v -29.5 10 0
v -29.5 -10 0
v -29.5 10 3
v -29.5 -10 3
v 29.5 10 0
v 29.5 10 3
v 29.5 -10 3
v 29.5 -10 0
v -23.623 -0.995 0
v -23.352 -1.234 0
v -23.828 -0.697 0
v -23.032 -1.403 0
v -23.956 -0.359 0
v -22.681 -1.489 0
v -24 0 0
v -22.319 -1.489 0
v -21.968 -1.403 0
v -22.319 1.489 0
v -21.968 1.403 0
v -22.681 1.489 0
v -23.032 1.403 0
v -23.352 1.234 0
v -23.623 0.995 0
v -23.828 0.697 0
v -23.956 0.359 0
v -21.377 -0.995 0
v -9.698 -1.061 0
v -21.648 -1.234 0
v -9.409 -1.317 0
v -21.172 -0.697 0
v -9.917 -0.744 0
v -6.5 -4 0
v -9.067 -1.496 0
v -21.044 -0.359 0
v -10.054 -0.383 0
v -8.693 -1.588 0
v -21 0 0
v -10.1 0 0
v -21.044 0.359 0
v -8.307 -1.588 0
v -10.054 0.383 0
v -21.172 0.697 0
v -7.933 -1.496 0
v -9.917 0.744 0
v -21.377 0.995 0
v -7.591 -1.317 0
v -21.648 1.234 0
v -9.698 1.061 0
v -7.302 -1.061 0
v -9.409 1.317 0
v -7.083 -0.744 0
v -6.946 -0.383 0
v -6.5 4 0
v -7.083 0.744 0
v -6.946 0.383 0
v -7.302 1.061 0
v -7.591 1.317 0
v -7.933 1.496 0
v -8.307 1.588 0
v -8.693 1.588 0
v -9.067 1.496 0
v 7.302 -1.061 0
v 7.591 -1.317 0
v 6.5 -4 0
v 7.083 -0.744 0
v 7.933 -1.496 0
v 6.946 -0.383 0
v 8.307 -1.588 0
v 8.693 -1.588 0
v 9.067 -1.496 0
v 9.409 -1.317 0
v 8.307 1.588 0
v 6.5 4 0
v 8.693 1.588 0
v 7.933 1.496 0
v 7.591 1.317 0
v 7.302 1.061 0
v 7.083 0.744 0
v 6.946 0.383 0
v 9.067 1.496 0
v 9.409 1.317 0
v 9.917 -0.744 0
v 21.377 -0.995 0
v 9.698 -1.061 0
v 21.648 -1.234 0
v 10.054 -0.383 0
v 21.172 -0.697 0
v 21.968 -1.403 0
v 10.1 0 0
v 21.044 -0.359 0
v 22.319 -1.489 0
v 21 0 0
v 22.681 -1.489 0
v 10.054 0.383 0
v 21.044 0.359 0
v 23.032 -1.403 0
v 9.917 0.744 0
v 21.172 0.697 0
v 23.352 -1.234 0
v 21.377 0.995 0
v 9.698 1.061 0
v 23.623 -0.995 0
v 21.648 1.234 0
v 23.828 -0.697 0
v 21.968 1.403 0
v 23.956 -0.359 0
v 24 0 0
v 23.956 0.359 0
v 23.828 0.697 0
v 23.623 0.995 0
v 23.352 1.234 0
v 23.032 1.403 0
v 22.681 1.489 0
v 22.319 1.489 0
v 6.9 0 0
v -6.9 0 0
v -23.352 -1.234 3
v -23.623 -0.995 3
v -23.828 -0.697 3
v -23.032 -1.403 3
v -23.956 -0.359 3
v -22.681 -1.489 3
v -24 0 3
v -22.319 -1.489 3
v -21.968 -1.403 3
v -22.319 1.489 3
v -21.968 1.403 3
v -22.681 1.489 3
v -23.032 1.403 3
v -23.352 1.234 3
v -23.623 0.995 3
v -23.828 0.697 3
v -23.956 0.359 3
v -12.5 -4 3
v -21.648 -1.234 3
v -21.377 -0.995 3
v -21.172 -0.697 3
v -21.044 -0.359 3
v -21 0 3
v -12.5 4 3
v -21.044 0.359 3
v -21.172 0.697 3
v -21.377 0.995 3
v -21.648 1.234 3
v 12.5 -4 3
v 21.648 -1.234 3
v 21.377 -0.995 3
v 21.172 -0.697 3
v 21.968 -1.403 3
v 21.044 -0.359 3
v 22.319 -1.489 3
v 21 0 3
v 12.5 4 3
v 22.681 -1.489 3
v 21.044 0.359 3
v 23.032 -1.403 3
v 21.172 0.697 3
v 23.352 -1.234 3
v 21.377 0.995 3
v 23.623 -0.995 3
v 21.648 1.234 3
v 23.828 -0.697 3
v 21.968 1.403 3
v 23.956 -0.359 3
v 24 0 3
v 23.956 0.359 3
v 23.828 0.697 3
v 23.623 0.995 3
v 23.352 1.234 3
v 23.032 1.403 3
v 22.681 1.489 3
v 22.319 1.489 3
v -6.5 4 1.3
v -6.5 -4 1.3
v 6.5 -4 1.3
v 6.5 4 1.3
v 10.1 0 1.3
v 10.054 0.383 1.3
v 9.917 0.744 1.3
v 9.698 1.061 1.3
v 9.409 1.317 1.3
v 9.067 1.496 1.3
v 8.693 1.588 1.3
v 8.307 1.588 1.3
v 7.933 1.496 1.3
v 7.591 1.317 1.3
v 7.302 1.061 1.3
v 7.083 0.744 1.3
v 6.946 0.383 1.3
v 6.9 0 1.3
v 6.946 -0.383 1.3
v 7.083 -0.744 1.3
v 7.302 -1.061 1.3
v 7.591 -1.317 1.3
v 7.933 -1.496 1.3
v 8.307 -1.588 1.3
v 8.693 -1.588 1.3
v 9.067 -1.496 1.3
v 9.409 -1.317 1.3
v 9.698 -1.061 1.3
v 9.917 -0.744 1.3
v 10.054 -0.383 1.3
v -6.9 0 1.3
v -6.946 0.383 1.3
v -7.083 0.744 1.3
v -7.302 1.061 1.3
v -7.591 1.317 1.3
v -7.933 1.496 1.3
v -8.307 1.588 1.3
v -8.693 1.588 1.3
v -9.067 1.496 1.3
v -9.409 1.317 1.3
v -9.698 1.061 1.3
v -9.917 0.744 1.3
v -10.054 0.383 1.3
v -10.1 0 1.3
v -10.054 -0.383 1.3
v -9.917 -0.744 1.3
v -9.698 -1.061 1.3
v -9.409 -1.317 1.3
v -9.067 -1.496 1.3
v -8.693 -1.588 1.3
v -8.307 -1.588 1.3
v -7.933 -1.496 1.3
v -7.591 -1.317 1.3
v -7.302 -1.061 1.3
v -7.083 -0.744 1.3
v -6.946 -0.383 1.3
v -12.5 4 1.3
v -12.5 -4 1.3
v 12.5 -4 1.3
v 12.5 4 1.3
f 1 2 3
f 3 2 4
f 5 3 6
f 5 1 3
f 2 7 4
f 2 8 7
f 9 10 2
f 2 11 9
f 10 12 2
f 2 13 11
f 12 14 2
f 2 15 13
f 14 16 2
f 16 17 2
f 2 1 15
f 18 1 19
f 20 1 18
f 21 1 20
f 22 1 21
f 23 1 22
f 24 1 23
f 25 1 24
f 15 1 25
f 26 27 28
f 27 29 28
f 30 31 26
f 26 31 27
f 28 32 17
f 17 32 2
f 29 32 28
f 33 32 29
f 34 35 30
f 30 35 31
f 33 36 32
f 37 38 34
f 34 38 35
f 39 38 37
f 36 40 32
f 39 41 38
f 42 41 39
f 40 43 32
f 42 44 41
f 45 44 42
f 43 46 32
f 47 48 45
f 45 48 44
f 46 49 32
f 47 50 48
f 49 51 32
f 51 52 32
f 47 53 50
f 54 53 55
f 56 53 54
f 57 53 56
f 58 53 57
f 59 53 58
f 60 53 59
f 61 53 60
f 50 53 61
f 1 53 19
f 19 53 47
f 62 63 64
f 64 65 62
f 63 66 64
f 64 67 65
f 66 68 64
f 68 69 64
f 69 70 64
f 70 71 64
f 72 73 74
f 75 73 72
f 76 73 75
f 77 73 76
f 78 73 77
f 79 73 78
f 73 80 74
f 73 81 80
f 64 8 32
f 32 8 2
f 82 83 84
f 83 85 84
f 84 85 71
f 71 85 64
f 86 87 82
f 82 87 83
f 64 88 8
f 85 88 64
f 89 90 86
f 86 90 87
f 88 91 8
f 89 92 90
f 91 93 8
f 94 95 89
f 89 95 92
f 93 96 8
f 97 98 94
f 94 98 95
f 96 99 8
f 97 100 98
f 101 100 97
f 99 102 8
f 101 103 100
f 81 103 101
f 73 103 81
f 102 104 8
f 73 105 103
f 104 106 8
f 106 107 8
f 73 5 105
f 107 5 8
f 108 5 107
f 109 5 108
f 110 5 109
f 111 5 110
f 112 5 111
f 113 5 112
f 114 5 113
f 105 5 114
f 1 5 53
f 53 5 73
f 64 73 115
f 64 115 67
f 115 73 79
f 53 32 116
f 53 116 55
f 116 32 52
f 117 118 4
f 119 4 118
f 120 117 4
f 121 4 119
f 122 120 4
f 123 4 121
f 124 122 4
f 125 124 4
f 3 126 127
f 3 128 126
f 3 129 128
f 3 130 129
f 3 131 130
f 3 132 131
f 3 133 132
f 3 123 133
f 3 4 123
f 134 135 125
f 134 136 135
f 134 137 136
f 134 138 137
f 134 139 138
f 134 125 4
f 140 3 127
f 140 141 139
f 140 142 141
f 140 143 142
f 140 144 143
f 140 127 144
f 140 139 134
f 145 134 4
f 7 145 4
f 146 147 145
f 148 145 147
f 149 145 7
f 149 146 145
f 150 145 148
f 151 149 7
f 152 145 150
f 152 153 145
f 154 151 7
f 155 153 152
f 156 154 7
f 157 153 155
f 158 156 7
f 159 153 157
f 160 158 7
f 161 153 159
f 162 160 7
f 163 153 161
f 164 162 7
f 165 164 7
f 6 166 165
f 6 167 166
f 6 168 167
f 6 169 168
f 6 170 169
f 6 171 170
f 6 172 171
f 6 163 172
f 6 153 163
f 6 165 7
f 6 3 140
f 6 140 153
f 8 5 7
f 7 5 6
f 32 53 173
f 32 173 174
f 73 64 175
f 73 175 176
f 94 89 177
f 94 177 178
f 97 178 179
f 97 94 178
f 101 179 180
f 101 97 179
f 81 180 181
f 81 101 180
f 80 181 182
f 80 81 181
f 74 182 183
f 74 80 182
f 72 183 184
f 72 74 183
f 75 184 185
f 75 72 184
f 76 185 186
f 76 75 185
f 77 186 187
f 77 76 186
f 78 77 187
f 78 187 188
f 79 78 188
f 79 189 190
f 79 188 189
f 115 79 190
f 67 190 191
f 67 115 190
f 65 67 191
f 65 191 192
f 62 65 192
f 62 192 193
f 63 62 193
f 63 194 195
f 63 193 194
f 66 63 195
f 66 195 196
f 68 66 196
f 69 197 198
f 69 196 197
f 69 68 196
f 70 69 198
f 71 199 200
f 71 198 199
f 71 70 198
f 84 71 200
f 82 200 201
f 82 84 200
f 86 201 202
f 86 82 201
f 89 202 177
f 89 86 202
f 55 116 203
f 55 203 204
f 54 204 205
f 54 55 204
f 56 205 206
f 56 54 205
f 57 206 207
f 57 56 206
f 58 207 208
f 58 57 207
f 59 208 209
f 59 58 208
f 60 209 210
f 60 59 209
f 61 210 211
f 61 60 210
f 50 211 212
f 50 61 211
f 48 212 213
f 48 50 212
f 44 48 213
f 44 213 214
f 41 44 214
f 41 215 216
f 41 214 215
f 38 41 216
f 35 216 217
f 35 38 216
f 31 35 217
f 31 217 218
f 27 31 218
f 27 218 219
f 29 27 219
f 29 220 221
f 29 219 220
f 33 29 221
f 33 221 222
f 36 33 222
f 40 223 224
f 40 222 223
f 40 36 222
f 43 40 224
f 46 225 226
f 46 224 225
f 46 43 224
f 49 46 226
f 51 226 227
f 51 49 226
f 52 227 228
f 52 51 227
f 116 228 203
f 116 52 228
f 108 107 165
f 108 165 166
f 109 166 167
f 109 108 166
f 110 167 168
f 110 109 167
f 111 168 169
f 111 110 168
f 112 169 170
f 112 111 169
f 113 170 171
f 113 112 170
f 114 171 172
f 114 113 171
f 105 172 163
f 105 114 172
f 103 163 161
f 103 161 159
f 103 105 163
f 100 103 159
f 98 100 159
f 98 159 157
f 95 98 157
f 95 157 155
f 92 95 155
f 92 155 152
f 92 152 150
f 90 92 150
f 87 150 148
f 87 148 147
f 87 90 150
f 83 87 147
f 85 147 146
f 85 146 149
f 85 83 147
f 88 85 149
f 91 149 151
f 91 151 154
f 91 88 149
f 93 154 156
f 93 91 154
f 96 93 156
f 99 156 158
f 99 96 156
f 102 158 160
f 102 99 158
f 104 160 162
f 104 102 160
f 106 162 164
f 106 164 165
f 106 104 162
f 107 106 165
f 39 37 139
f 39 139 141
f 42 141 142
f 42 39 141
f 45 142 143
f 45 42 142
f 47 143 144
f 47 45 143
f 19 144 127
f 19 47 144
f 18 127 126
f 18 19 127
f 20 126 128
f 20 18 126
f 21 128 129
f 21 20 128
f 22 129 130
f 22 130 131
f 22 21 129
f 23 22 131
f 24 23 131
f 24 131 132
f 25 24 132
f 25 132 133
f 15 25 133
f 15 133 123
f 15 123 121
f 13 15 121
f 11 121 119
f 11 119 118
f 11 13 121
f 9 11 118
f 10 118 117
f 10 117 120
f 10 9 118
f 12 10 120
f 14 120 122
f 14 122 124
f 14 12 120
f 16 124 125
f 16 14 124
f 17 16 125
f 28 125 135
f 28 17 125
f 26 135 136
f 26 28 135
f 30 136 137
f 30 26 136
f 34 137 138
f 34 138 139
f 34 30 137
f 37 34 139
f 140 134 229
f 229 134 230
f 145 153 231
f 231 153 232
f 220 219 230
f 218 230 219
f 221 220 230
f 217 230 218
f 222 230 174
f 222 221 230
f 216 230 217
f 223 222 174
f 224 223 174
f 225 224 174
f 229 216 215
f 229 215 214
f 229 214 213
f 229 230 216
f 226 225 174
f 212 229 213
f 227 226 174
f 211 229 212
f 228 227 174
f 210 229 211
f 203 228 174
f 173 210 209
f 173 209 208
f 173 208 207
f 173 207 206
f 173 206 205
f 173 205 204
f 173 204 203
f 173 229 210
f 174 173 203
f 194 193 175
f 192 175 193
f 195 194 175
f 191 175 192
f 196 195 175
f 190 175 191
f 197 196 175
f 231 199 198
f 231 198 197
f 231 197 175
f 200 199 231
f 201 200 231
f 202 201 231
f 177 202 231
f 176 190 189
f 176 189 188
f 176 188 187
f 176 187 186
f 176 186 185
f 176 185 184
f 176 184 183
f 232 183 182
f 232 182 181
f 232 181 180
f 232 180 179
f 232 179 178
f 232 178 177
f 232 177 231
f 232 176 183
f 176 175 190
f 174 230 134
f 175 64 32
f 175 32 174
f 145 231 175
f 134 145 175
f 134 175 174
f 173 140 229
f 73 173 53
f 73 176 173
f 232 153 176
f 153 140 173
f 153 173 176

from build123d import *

# Parameters (mm, degrees)
SKETCH_W     = 59
SKETCH_H     = 20
SKETCH_R     = 1.5
SKETCH_R_2   = 1.6
SKETCH_W_2   = 13
SKETCH_H_2   = 8
PAD_DEPTH    = 3
SKETCH002_W  = 25
SKETCH002_H  = 8
POCKET_DEPTH = 1.7


with BuildPart() as part:
    # Sketch → Pad (new body)
    with BuildSketch(Plane.XY):
        Rectangle(SKETCH_W, SKETCH_H)
        with Locations((-22.5, 0)):
            Circle(SKETCH_R, mode=Mode.SUBTRACT)
        with Locations((-8.5, 0)):
            Circle(SKETCH_R_2, mode=Mode.SUBTRACT)
        with Locations((8.5, 0)):
            Circle(SKETCH_R_2, mode=Mode.SUBTRACT)
        with Locations((22.5, 0)):
            Circle(SKETCH_R, mode=Mode.SUBTRACT)
        Rectangle(SKETCH_W_2, SKETCH_H_2, mode=Mode.SUBTRACT)
    extrude(amount=PAD_DEPTH)

    # Sketch002 (on Face14 of Pad) → Pocket (cut)
    with BuildSketch(Plane.XY.offset(3)):
        Rectangle(SKETCH002_W, SKETCH002_H)
    extrude(amount=-POCKET_DEPTH, mode=Mode.SUBTRACT)


solid = part.part
